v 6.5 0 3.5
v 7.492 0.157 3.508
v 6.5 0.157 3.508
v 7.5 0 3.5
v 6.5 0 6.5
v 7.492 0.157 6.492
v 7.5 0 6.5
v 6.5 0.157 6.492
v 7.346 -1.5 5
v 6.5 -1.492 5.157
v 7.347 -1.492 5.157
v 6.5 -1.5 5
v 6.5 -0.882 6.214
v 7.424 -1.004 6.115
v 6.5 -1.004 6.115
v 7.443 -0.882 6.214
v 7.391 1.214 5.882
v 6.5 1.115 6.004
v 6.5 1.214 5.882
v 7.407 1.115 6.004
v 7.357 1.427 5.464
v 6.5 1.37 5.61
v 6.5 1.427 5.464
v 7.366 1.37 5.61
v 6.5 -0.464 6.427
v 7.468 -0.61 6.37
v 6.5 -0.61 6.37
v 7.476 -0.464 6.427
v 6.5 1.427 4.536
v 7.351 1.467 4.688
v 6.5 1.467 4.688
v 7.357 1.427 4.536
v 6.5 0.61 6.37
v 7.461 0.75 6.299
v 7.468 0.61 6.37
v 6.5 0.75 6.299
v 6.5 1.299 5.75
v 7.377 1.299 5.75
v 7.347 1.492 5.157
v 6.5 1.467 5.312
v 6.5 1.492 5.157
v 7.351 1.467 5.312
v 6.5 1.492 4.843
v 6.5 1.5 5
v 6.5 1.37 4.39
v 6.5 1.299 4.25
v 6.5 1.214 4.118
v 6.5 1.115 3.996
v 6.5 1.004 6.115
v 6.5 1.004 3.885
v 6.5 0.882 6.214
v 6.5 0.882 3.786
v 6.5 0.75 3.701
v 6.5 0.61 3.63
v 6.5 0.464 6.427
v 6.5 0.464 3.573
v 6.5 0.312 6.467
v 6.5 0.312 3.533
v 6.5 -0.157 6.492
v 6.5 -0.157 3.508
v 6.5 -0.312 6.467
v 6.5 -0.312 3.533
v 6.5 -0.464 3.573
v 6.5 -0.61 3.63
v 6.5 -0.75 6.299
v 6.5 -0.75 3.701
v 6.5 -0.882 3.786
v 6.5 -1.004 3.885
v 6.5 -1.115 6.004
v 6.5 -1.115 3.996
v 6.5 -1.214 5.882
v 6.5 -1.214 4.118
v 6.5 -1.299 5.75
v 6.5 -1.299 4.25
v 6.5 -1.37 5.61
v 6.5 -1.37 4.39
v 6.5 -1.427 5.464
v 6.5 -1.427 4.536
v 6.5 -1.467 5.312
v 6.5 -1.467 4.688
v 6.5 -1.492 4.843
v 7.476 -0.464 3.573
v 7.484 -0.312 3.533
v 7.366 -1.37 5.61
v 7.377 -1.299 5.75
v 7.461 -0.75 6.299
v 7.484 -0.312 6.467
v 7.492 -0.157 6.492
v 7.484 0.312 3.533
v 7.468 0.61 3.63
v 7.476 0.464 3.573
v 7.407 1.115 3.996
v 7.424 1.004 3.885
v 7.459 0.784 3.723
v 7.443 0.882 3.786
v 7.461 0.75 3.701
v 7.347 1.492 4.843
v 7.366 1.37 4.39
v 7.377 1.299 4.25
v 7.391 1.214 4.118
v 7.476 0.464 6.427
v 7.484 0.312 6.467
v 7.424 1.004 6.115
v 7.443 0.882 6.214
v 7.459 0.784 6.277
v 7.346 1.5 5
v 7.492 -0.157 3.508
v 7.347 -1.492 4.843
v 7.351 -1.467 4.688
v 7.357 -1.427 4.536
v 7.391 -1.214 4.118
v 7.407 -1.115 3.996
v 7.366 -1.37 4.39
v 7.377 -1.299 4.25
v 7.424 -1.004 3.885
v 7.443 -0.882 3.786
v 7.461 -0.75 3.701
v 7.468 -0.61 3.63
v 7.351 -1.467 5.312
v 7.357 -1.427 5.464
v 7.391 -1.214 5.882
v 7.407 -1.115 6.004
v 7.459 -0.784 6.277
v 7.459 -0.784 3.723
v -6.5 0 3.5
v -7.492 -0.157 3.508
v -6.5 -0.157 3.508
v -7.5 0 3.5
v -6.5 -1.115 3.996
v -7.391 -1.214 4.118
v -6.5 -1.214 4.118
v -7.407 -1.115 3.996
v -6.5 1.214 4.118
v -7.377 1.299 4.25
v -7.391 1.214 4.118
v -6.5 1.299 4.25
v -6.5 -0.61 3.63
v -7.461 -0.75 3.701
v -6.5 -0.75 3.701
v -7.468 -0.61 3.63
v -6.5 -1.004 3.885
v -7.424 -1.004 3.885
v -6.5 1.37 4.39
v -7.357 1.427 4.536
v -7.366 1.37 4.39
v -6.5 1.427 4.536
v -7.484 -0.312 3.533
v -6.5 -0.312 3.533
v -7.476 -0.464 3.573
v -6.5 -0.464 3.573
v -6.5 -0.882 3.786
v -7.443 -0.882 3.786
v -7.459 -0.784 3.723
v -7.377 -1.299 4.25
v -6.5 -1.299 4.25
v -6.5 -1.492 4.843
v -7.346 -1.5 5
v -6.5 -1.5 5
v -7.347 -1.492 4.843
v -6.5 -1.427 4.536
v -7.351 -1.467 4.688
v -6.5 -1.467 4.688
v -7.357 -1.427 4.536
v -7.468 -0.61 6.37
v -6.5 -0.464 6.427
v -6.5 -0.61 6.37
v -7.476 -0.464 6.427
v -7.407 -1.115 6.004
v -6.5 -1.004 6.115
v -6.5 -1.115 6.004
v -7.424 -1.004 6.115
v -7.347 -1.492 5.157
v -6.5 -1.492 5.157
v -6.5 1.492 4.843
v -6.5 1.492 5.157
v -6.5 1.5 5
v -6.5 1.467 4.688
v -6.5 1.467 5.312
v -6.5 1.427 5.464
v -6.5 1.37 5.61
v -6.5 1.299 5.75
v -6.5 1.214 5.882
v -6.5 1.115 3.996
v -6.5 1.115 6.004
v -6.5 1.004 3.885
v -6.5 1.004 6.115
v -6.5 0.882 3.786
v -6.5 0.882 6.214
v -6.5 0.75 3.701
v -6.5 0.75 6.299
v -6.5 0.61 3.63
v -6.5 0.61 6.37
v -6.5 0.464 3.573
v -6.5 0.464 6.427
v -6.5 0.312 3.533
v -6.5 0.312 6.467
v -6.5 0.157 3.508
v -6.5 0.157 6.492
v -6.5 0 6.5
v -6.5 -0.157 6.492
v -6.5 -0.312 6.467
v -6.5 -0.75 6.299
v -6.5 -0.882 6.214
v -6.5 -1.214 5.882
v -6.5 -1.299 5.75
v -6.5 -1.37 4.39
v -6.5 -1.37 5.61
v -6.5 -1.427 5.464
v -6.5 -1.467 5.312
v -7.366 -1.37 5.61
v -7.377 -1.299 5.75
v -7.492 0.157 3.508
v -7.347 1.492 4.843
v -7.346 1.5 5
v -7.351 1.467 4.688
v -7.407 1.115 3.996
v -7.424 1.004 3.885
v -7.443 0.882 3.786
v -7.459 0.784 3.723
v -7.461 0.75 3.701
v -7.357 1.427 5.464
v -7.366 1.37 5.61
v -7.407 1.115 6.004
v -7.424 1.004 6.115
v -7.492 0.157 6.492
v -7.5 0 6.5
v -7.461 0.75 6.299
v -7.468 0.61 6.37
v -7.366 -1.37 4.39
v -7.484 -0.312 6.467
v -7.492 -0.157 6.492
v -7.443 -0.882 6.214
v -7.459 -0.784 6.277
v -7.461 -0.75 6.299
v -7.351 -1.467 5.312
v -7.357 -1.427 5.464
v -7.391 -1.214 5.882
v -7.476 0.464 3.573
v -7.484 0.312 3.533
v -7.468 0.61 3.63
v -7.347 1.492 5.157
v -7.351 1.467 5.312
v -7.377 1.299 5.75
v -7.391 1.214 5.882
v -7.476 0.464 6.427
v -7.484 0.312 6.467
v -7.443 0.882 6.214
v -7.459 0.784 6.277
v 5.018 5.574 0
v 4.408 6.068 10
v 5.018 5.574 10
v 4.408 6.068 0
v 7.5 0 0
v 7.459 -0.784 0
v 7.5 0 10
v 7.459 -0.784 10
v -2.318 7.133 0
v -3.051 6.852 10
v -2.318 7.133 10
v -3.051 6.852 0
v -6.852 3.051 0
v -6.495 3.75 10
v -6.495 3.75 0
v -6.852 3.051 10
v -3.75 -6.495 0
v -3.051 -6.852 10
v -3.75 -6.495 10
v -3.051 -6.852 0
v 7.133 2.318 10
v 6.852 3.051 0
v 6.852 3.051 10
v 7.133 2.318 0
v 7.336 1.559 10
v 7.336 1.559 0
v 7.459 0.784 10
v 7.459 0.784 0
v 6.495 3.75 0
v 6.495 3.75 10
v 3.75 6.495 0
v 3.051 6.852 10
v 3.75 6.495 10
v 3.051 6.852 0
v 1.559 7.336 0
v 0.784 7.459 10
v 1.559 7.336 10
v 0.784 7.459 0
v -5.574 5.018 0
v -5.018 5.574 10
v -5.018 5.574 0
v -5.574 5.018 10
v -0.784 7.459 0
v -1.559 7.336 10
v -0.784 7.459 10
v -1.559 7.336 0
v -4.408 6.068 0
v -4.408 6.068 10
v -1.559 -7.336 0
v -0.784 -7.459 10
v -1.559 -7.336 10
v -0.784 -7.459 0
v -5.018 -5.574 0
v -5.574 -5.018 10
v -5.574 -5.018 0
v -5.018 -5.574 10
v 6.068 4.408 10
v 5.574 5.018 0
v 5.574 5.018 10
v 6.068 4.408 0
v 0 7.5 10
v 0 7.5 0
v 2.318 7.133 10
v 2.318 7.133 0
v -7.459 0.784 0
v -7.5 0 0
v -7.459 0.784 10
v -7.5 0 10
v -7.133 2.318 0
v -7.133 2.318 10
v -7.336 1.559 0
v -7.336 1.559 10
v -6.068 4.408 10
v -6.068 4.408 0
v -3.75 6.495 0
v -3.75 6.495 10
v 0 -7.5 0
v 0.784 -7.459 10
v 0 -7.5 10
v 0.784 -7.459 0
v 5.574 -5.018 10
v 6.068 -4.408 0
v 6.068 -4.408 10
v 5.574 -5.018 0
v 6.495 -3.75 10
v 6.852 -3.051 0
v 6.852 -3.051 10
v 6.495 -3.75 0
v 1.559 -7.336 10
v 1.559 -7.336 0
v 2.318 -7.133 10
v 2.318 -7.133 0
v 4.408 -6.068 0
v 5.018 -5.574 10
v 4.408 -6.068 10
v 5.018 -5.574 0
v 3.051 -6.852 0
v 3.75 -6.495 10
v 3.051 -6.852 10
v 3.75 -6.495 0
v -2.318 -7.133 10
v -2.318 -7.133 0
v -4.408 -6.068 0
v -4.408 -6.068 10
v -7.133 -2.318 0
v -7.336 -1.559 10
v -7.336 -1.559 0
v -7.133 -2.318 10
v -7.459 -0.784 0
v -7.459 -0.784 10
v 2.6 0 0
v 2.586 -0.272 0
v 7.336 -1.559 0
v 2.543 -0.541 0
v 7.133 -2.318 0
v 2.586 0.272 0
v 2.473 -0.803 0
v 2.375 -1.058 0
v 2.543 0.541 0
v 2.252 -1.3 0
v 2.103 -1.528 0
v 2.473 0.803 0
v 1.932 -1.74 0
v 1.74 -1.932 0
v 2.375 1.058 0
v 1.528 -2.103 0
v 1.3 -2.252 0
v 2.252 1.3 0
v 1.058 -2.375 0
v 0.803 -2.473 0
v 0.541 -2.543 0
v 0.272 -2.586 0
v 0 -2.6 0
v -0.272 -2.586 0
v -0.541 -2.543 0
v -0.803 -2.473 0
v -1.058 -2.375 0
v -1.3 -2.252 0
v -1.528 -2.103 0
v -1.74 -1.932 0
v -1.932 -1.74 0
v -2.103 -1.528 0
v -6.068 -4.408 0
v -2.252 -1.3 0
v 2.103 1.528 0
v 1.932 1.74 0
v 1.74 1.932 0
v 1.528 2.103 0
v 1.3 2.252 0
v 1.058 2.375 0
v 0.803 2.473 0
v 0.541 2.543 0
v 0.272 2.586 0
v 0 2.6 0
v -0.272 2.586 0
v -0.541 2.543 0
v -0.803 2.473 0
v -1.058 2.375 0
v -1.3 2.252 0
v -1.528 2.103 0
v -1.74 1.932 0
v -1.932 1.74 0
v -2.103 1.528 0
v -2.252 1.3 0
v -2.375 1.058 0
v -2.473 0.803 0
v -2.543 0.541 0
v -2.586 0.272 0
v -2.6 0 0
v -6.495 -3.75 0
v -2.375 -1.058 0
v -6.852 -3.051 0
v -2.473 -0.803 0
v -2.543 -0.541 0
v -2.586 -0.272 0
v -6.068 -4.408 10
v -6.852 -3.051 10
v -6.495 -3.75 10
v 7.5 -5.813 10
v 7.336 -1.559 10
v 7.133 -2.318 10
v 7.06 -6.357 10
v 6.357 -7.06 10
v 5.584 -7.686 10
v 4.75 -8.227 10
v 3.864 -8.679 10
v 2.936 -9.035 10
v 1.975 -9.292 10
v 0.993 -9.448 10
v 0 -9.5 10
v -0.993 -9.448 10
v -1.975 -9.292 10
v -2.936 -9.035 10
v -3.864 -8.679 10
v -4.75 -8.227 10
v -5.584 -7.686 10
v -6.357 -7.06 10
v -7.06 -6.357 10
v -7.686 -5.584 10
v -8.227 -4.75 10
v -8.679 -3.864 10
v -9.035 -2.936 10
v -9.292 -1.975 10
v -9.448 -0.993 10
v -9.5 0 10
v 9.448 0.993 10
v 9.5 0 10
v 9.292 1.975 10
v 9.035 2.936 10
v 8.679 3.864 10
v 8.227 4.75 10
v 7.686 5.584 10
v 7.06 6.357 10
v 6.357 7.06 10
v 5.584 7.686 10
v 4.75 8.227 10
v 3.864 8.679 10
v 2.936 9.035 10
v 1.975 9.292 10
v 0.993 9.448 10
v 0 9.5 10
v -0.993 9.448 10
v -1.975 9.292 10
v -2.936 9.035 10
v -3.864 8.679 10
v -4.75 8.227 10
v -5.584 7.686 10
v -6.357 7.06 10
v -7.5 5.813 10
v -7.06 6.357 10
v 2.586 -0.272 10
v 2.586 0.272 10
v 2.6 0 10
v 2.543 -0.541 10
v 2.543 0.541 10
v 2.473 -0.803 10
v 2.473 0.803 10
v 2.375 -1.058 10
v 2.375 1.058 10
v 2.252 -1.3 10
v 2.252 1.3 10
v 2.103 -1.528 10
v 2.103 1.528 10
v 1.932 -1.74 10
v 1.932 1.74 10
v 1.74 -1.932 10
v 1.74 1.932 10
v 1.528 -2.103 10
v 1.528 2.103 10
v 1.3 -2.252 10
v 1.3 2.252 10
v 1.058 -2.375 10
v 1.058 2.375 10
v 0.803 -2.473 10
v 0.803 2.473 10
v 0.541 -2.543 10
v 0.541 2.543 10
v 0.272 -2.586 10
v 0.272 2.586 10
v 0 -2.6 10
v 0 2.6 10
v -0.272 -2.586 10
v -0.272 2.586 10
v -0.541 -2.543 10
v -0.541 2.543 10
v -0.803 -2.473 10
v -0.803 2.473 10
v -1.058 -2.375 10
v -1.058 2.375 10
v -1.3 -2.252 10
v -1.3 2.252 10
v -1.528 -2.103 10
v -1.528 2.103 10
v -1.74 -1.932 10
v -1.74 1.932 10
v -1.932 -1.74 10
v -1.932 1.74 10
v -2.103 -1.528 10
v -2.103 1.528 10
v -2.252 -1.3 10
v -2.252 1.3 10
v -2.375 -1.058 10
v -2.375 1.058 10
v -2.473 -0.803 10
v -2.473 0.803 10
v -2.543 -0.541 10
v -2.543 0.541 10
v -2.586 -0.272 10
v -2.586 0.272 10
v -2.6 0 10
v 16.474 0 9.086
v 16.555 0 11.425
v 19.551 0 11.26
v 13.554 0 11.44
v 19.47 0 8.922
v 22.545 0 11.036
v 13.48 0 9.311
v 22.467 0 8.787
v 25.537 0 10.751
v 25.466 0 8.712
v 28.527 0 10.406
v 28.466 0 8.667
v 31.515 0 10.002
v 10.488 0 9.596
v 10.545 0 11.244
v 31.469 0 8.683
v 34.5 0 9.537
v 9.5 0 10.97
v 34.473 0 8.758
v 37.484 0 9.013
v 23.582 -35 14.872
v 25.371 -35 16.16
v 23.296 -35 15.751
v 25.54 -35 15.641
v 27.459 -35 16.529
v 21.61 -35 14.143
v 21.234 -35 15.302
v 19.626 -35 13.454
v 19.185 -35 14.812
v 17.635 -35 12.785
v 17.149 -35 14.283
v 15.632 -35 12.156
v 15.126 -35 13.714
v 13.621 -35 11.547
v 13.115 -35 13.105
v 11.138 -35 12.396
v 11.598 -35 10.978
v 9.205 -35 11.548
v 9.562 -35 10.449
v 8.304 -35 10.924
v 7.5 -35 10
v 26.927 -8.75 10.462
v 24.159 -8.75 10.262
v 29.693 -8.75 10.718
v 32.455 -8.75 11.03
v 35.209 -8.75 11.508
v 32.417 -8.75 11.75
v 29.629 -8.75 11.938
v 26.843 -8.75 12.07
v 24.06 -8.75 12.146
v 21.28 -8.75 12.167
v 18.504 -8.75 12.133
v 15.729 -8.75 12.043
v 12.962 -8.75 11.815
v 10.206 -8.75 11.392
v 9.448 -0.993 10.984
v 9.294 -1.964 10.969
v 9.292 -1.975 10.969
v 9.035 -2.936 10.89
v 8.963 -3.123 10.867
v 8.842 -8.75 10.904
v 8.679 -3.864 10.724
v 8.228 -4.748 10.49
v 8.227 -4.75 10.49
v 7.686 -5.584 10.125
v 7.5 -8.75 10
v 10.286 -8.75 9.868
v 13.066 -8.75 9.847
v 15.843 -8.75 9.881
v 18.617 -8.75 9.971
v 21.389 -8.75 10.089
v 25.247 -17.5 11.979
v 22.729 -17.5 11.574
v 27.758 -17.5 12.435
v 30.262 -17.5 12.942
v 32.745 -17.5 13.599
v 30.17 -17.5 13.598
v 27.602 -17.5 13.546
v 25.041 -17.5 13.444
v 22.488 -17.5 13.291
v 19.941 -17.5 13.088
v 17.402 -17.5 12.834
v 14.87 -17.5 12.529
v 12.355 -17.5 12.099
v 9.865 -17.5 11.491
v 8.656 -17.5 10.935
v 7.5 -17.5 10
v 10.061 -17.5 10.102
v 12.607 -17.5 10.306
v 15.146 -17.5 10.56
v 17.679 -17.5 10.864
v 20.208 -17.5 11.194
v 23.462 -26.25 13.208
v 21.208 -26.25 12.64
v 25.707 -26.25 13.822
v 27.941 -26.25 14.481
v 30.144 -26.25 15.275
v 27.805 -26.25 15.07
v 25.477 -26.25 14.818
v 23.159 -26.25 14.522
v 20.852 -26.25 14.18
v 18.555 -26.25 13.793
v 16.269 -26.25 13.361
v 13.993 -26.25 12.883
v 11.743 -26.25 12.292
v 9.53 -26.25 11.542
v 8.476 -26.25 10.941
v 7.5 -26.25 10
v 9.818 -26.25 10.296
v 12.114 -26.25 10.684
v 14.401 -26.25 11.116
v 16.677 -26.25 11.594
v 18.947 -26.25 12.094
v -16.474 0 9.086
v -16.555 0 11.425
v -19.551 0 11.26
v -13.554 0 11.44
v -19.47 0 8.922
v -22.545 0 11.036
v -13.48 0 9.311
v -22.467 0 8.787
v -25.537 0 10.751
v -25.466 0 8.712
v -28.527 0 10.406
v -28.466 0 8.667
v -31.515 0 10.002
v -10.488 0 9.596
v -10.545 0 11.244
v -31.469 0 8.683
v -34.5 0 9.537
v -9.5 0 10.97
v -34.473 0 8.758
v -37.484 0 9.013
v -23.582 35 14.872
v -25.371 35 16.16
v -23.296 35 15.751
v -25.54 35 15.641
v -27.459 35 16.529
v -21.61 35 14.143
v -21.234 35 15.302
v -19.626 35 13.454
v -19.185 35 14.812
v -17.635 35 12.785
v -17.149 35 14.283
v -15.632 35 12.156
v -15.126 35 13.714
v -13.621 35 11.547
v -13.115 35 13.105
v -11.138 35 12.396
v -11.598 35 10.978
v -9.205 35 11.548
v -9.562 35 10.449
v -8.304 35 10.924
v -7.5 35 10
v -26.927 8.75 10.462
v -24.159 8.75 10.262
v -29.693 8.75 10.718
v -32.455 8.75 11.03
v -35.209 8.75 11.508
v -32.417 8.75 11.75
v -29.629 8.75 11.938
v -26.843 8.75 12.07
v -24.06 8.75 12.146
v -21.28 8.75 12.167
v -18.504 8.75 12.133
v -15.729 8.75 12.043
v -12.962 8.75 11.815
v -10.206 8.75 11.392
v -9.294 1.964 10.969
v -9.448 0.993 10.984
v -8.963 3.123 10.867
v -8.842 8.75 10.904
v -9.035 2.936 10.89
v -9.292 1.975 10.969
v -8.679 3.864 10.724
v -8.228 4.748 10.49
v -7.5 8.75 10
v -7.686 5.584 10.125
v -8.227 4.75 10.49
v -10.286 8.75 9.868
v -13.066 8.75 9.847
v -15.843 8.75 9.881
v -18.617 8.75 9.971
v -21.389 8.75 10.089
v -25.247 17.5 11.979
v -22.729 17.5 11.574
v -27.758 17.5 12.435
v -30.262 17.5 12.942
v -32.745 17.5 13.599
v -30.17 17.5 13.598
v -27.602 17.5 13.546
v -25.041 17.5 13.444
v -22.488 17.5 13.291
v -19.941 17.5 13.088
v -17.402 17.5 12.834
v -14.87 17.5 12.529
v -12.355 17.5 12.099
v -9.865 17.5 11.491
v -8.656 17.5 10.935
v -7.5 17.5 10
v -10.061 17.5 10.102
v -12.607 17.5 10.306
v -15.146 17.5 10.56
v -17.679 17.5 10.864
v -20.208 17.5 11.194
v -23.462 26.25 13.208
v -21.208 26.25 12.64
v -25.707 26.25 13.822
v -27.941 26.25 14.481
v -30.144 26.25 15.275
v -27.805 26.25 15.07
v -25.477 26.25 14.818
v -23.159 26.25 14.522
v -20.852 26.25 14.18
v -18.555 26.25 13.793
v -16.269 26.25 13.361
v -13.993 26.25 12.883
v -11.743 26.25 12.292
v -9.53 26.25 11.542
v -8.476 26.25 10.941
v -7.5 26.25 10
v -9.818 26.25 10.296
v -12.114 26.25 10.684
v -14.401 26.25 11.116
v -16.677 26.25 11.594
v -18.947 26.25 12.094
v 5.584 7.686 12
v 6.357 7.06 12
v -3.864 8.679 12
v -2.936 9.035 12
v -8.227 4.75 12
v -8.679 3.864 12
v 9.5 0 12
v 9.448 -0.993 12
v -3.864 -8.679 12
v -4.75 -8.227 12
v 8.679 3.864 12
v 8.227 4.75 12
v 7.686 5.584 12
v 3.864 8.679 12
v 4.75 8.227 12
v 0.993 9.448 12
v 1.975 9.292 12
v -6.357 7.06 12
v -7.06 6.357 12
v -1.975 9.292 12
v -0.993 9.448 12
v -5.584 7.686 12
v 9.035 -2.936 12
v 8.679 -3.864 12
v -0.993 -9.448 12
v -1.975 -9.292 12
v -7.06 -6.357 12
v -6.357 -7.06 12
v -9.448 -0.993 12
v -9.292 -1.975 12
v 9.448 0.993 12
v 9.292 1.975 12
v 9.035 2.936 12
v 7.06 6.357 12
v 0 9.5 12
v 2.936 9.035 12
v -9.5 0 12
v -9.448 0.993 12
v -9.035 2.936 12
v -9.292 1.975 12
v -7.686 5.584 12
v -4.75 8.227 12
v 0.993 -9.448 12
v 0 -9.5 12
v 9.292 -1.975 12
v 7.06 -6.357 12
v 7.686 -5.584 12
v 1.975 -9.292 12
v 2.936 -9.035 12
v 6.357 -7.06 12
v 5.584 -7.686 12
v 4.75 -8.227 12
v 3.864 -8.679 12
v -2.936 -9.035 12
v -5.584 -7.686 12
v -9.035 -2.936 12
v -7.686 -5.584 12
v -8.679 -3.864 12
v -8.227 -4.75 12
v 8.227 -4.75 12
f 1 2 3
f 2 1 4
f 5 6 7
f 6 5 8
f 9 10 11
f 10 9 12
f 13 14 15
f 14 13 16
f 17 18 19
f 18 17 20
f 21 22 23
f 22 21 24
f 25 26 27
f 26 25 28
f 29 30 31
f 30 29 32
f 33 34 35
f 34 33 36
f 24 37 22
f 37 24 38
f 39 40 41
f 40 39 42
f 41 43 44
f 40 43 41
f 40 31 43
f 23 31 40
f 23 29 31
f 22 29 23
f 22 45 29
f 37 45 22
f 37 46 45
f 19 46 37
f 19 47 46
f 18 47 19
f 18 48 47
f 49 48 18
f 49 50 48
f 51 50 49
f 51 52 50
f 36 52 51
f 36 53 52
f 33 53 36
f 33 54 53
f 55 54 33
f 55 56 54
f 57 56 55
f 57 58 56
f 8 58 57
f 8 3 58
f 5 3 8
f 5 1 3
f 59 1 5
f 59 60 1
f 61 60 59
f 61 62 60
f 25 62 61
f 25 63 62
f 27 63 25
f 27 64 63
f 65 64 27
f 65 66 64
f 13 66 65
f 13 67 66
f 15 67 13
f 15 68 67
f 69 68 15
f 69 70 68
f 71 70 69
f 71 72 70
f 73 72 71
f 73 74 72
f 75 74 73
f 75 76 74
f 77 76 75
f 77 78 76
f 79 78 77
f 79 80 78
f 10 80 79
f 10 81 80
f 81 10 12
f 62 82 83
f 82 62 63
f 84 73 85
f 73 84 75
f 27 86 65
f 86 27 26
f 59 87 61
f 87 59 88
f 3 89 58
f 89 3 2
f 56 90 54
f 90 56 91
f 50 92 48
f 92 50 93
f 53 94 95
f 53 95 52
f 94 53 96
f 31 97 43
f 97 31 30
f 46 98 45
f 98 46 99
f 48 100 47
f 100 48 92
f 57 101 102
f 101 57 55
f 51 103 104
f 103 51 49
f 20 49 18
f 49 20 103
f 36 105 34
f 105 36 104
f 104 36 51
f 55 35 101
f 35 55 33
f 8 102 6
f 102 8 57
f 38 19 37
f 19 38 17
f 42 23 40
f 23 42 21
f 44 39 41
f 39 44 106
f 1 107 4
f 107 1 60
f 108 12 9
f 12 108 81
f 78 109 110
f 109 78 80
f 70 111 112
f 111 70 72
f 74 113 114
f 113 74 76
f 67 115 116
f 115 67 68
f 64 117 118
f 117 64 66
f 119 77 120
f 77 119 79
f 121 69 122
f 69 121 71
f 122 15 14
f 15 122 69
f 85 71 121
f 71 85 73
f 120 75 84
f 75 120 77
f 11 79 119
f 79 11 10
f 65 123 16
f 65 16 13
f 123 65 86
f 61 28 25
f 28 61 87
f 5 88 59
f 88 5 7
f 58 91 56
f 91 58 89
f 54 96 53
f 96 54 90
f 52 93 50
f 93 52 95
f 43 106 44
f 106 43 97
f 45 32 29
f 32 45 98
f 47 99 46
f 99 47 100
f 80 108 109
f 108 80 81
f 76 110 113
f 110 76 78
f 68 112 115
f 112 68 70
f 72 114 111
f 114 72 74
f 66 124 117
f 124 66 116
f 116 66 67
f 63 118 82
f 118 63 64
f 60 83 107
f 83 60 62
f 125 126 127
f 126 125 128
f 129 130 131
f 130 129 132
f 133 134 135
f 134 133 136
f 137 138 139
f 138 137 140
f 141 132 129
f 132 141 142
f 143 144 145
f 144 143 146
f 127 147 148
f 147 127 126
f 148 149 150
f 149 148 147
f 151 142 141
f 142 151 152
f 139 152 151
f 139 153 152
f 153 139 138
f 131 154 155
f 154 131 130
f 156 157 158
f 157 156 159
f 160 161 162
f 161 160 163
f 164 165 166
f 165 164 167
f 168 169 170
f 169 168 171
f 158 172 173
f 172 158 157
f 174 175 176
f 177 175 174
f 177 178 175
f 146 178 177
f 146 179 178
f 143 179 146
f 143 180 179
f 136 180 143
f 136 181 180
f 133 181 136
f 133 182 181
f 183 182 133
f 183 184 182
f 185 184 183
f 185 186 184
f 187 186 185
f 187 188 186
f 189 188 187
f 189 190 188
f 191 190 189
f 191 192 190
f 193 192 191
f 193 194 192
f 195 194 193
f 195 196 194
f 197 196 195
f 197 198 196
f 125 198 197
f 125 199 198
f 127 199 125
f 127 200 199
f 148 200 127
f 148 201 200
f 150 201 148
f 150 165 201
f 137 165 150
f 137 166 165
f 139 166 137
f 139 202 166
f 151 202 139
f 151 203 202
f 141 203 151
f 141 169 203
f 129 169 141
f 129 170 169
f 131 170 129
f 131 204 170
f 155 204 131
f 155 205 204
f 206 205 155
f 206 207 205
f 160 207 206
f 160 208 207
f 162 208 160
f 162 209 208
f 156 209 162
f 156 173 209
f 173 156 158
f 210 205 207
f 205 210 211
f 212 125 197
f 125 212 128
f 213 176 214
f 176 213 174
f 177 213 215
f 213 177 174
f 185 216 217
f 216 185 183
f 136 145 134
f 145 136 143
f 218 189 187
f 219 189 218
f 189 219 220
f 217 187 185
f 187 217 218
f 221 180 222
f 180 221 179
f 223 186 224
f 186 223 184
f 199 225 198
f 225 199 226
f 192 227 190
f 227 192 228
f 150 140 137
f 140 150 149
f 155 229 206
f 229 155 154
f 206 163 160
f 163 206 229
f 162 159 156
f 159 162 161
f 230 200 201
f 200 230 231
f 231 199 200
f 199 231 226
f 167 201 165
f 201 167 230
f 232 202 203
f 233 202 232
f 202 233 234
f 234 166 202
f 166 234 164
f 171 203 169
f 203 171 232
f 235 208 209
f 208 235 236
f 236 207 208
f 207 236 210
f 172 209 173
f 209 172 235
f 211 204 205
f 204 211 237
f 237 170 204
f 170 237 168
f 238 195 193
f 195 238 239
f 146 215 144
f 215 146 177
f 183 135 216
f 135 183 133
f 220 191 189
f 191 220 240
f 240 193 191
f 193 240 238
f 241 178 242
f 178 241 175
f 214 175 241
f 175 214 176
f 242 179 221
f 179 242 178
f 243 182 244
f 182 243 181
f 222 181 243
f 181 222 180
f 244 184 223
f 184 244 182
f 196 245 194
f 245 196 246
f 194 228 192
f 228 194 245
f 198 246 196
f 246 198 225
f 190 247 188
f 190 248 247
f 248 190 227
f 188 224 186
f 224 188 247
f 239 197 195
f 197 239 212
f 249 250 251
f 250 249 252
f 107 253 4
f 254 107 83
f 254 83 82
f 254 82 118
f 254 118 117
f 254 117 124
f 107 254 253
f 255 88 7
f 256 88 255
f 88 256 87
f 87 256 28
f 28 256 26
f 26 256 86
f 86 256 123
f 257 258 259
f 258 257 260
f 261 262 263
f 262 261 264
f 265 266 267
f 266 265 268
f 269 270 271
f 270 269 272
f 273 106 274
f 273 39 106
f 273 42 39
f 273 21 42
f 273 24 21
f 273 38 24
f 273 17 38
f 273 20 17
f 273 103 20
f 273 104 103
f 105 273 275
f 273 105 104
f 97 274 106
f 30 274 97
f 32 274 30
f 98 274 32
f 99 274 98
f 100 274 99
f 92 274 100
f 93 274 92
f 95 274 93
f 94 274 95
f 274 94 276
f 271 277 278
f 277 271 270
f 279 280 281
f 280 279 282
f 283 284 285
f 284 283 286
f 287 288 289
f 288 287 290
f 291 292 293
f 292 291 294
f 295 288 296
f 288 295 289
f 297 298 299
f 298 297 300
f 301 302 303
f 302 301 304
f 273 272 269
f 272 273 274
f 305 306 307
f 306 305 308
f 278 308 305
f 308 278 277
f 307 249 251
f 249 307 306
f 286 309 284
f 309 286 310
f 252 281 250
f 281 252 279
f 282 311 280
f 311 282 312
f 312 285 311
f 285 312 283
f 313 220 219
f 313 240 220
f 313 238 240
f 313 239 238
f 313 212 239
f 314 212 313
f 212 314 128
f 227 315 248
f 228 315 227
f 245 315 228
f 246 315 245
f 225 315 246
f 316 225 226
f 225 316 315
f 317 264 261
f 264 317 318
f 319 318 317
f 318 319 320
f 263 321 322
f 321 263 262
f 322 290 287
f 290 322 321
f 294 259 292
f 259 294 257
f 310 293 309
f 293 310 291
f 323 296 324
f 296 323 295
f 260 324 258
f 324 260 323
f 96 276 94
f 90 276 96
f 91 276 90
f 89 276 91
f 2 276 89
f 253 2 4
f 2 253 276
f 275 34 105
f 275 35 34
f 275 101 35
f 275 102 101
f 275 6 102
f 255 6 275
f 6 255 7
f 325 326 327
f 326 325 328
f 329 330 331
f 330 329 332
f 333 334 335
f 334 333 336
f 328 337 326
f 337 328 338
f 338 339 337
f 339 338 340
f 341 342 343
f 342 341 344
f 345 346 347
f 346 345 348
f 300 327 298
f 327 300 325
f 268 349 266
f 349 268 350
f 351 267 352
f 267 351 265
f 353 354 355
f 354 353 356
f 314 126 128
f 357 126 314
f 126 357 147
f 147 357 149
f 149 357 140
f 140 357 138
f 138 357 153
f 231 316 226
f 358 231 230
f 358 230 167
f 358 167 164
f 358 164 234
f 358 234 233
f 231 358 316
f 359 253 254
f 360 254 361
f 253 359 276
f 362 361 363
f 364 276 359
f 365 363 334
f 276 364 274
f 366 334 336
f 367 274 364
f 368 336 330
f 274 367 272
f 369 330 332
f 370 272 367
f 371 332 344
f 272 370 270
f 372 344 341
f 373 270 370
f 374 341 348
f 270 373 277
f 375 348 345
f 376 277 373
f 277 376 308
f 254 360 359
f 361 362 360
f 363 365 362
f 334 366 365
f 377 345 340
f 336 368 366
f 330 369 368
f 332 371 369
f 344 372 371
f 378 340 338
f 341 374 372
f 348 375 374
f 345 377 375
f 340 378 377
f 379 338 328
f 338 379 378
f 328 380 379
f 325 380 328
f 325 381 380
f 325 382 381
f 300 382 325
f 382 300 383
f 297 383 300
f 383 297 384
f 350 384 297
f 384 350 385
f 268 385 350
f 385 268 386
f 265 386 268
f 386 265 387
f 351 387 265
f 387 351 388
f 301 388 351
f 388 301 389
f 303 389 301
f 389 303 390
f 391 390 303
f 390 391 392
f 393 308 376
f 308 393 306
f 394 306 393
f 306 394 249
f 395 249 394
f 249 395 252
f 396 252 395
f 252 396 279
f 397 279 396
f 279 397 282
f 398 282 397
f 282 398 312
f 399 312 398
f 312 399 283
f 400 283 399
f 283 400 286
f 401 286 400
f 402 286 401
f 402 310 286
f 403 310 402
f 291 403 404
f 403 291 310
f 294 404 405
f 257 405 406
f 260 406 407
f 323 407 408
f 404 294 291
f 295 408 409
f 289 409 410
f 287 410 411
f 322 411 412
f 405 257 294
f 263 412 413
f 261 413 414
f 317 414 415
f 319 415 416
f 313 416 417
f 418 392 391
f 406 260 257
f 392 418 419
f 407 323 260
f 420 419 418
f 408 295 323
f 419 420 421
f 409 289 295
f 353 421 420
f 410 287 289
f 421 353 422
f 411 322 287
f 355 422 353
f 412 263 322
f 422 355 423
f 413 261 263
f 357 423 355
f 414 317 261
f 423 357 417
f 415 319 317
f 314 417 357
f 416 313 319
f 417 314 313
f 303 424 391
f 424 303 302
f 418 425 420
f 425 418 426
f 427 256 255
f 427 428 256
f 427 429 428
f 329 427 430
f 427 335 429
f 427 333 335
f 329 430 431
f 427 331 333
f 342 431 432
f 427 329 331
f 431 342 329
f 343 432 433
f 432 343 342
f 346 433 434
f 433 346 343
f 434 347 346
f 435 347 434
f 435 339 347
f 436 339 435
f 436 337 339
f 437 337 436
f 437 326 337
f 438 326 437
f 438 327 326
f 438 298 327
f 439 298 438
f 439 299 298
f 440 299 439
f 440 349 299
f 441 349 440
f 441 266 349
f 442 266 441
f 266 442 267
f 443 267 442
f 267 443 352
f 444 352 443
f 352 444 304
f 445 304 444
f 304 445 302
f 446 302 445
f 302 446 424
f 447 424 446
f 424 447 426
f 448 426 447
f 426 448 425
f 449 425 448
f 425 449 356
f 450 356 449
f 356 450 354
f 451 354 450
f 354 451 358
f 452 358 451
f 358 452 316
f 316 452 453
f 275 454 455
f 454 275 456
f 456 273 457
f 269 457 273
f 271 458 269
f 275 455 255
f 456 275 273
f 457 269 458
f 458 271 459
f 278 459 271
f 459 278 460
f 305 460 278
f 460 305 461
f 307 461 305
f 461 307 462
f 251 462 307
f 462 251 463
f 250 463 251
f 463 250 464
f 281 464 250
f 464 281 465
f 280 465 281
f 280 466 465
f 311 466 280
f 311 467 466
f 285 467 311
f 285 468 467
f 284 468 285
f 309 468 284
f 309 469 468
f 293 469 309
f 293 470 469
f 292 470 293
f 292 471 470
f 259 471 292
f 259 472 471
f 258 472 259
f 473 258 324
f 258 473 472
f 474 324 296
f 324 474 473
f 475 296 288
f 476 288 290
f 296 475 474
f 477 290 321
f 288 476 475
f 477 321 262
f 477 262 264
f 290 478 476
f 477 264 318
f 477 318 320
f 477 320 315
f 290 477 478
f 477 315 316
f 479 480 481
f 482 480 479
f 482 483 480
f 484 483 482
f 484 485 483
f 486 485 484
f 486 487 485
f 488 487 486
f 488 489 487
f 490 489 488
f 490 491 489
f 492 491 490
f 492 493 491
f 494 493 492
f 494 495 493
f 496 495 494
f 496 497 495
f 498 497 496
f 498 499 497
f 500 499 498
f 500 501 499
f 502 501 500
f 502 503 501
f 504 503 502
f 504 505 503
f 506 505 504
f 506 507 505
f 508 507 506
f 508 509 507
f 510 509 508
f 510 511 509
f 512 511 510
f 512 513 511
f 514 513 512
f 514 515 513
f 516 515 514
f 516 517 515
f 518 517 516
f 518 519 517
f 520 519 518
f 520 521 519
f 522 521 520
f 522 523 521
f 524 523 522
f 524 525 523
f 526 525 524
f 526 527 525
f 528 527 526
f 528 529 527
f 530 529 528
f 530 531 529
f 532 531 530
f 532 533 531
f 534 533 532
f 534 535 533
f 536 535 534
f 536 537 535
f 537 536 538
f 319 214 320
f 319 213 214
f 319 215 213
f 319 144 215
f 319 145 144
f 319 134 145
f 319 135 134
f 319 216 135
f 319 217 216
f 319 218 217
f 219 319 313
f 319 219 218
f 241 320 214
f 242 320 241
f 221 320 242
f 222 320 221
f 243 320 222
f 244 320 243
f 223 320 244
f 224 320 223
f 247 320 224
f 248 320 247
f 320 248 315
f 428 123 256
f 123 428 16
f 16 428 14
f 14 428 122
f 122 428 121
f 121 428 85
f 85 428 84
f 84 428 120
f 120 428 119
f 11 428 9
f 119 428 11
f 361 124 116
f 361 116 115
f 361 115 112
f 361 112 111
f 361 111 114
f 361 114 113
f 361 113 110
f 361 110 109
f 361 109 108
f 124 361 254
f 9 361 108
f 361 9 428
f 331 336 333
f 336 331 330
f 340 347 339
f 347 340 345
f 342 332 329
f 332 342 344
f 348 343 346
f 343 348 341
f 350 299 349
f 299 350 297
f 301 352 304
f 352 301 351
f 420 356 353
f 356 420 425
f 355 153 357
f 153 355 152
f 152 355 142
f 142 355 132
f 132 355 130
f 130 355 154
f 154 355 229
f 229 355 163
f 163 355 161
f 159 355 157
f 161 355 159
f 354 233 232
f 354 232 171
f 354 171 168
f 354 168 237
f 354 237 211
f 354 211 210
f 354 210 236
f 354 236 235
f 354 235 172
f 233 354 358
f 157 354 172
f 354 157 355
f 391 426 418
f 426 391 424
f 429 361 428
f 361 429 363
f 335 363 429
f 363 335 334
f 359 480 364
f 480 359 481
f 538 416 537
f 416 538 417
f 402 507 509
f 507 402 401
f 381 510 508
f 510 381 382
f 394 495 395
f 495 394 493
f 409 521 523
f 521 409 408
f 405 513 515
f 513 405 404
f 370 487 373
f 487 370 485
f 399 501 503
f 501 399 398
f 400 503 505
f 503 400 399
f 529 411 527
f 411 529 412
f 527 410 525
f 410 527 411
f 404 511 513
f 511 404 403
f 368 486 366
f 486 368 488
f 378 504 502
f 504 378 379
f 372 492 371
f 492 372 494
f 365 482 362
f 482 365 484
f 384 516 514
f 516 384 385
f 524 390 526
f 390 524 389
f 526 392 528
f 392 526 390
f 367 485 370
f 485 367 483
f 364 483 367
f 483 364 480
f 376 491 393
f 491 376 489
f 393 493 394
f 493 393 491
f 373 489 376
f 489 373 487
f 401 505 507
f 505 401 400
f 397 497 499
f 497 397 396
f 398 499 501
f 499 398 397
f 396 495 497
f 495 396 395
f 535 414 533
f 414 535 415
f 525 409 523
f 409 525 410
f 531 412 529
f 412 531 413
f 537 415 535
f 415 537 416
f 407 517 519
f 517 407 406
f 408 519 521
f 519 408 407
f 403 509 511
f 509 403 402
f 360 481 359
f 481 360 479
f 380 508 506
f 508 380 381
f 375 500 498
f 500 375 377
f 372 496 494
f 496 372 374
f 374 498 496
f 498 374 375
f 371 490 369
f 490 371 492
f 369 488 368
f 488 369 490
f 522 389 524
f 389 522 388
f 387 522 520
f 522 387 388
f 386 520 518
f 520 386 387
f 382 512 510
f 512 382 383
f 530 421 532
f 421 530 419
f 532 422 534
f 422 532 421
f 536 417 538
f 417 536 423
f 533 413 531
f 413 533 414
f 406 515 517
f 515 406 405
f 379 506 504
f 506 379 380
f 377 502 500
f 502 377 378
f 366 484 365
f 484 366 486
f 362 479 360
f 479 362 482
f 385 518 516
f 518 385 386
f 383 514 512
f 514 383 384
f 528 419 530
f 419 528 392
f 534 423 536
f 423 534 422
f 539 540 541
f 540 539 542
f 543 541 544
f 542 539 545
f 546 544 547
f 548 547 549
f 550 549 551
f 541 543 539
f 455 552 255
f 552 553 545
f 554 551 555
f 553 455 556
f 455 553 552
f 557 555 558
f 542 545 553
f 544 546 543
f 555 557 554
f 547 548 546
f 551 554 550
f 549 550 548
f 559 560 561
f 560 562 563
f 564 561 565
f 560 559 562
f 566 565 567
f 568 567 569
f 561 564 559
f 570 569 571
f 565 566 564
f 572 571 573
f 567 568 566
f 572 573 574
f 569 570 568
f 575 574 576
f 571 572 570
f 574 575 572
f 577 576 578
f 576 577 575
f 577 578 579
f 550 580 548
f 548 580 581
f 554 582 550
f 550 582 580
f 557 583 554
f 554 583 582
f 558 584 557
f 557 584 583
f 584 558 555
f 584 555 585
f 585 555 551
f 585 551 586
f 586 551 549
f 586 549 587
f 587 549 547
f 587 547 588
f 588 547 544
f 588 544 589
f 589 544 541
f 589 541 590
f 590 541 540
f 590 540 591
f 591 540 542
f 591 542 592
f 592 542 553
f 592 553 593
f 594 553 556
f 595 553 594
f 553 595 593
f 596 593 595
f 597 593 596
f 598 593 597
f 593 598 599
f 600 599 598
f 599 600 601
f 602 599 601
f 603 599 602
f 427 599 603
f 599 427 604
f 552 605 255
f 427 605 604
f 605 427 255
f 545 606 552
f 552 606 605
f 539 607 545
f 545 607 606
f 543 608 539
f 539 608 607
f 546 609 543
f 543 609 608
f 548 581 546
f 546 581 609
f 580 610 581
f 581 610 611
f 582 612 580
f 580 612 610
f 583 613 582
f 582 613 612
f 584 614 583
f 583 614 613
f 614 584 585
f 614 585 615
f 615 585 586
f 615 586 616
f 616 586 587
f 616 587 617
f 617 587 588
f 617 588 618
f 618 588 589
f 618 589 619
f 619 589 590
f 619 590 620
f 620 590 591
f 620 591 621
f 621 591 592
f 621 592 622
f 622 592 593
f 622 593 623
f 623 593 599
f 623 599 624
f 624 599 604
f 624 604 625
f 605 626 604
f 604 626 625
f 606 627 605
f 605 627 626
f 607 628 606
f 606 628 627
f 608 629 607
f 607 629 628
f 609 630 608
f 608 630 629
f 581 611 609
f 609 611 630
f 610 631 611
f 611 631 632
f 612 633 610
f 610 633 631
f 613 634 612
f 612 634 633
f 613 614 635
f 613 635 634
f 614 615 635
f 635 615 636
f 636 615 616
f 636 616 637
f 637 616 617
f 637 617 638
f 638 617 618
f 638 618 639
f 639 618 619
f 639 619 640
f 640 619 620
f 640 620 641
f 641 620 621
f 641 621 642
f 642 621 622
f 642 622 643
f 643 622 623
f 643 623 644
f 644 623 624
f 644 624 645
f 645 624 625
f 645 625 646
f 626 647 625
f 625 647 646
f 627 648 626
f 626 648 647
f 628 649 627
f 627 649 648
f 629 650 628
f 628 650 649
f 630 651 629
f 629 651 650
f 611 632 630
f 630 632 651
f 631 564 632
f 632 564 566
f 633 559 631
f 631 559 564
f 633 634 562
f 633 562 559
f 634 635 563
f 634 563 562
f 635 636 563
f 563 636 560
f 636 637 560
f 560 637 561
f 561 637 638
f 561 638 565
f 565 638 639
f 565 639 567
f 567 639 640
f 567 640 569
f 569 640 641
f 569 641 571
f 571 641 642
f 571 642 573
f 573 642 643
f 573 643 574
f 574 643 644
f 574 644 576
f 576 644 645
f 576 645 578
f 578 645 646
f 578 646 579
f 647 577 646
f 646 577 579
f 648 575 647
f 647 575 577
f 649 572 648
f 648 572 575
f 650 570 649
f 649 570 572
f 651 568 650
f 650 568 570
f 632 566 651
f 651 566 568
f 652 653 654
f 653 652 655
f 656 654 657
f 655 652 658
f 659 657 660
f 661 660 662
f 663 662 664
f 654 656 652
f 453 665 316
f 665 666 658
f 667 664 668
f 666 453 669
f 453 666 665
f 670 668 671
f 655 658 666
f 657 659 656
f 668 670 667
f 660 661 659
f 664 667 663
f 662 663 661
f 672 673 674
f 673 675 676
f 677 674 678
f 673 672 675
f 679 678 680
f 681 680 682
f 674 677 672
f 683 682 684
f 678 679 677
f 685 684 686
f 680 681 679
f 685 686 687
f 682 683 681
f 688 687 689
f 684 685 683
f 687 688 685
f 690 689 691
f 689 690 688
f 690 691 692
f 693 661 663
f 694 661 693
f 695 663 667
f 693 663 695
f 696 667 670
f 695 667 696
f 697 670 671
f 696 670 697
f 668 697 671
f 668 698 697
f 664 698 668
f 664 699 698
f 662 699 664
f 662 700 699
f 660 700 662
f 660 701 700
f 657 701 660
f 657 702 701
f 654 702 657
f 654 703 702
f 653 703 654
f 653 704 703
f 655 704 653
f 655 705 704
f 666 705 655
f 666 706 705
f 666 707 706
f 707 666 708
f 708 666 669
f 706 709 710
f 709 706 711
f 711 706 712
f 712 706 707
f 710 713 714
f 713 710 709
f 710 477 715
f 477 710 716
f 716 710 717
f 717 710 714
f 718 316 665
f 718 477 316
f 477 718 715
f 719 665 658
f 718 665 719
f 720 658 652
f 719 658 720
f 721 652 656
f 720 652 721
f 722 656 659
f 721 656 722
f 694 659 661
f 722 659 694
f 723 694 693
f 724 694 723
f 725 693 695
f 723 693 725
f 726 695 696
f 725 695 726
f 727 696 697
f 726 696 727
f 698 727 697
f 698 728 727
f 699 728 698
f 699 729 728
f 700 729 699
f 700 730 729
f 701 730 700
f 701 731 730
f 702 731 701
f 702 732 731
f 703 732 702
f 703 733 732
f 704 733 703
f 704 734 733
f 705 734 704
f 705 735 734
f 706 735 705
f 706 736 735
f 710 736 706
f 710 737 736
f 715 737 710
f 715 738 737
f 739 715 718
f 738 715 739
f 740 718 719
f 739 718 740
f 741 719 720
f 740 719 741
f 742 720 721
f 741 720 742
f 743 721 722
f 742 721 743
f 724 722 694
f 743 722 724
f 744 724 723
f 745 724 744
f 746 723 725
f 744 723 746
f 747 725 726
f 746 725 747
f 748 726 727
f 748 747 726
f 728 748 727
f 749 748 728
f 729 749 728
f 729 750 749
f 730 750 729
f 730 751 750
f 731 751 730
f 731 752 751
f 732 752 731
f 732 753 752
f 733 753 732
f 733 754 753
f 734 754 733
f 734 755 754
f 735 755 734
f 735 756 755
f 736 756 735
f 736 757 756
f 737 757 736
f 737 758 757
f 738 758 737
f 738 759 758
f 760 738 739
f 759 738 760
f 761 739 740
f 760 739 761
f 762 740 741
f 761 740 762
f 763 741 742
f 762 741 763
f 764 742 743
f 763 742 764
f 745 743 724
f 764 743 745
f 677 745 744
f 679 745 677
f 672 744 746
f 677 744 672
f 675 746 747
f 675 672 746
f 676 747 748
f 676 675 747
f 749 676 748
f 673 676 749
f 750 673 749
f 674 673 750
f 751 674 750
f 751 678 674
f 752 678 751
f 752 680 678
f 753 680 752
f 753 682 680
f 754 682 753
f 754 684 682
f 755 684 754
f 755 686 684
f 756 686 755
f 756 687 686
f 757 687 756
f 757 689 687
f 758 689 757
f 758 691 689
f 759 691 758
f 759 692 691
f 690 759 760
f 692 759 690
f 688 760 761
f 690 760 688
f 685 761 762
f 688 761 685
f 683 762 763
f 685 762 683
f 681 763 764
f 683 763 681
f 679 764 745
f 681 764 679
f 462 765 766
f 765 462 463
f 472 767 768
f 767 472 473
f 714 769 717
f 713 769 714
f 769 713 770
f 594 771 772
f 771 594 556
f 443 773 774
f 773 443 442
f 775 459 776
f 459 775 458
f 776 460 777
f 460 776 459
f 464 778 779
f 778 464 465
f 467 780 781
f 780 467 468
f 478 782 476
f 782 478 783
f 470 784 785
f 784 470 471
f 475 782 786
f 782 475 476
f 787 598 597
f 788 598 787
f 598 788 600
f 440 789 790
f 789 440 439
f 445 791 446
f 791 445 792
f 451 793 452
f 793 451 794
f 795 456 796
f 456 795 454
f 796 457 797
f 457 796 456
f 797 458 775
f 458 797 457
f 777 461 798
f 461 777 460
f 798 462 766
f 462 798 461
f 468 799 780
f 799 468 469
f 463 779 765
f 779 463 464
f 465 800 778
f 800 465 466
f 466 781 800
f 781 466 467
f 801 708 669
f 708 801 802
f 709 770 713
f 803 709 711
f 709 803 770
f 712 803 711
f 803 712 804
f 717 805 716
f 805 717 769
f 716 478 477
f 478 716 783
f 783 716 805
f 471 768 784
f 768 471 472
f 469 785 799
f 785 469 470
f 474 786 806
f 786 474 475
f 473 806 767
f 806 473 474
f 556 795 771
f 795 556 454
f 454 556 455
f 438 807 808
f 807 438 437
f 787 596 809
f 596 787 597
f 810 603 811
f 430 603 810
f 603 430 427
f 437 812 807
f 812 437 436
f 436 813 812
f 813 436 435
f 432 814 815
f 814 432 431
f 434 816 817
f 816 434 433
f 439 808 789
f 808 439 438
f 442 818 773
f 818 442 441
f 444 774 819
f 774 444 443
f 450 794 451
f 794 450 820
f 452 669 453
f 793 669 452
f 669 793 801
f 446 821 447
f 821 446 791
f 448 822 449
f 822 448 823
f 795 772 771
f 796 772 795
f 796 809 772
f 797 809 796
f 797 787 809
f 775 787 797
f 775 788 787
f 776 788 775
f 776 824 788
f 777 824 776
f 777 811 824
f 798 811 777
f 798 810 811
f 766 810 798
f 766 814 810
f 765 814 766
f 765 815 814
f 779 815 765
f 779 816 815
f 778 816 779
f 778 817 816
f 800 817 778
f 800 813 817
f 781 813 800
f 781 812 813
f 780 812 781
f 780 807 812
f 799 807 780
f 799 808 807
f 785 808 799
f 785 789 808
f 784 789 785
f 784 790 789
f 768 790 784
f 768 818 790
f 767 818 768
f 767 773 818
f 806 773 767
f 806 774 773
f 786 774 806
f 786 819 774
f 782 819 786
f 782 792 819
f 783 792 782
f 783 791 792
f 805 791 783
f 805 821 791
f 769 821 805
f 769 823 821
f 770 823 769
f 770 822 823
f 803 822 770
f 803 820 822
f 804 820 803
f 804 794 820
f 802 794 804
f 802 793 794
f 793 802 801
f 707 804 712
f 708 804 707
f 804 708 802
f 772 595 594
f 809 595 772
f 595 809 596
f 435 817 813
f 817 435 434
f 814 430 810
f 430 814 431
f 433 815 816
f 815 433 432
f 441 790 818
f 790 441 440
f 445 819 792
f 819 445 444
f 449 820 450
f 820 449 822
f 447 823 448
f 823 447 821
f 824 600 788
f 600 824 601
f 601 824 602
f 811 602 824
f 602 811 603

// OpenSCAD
/*
 * COMPLETE MOTOR + IMPELLER ASSEMBLY
 * For CFD fluid testing and visualization
 * 
 * This model includes:
 *   - Brushless motor (2204-2206 size)
 *   - Motor shaft (5mm)
 *   - Impeller hub
 *   - 3 impeller variants (bladeless, AI-blades, hybrid)
 *   - Mounting plate
 * 
 * Usage:
 *   - Render full assembly: F6
 *   - Export for CFD: Set EXPORT_MODE = "impeller_only"
 *   - Change design: Set IMPELLER_TYPE = "bladeless" | "bladed" | "hybrid"
 */

// ============================================================================
// CONFIGURATION PARAMETERS (AI-Optimizable)
// ============================================================================

// General Settings
$fn = 60;  // Resolution for CFD export (increase to 100 for final)

// Export Mode
EXPORT_MODE = "impeller_only";  // Options: "full_assembly", "impeller_only", "motor_only"

// Impeller Type
IMPELLER_TYPE = "bladed";  // Options: "bladeless", "bladed", "hybrid"

// Motor Specifications (2204-2206 brushless)
MOTOR_DIAMETER = 28;         // mm
MOTOR_HEIGHT = 25;           // mm
MOTOR_SHAFT_DIAMETER = 5;    // mm (standard)
MOTOR_SHAFT_LENGTH = 15;     // mm (extends above motor)
MOTOR_MOUNT_PATTERN = 16;    // mm (16x16 or 19x19 common)
MOTOR_SCREW_DIAMETER = 3;    // M3 screws

// Impeller Parameters - BLADELESS
BLADELESS_OUTER_DIAMETER = 90;    // mm
BLADELESS_AIR_GAP = 0.8;          // mm (optimize: 0.6-1.2)
BLADELESS_THROAT_RATIO = 0.72;    // (optimize: 0.65-0.80)
BLADELESS_EXPANSION_ANGLE = 18;   // degrees (optimize: 12-25)
BLADELESS_RING_THICKNESS = 3;     // mm (optimize: 2-4)
BLADELESS_HEIGHT = 24;            // mm

// Impeller Parameters - BLADED
BLADED_DIAMETER = 85;
BLADED_HUB_DIAMETER = 15;         // mm (optimize: 12-20)
BLADED_BLADE_COUNT = 2;
BLADED_ROOT_CHORD = 30;
BLADED_TIP_CHORD_RATIO = 0.7;    // (optimize: 0.6-0.8)
BLADED_BLADE_THICKNESS = 2;       // mm (optimize: 1.5-3)
BLADED_BLADE_TWIST = -20;
BLADED_ATTACK_ANGLE = -2;
BLADED_BLADE_HEIGHT = 12;         // mm (optimize: 10-15)

// Hub Parameters
HUB_DIAMETER = 15;
HUB_HEIGHT = 10;
HUB_SET_SCREW_DIAMETER = 3;  // M3 set screw

// Mounting Plate
PLATE_SIZE = 50;
PLATE_THICKNESS = 3;

// ============================================================================
// MOTOR MODEL
// ============================================================================

module brushless_motor_2204() {
    color("DarkSlateGray") {
        // Motor can (bell)
        difference() {
            cylinder(h=MOTOR_HEIGHT, d=MOTOR_DIAMETER);
            
            // Hollow inside (weight reduction visualization)
            translate([0, 0, -0.5])
                cylinder(h=MOTOR_HEIGHT - 5, d=MOTOR_DIAMETER - 4);
            
            // Mounting holes
            for(i = [0:3]) {
                rotate([0, 0, i * 90])
                    translate([MOTOR_MOUNT_PATTERN/2, 0, MOTOR_HEIGHT/2])
                        rotate([90, 0, 0])
                            cylinder(h=MOTOR_DIAMETER, d=MOTOR_SCREW_DIAMETER, center=true);
            }
        }
        
        // Motor base
        translate([0, 0, -3])
            cylinder(h=3, d=MOTOR_DIAMETER - 2);
    }
    
    // Motor shaft
    color("Silver")
        translate([0, 0, MOTOR_HEIGHT])
            cylinder(h=MOTOR_SHAFT_LENGTH, d=MOTOR_SHAFT_DIAMETER);
    
    // Shaft tip (for hub attachment)
    color("Silver")
        translate([0, 0, MOTOR_HEIGHT + MOTOR_SHAFT_LENGTH])
            cylinder(h=2, d=MOTOR_SHAFT_DIAMETER - 0.5);
}

// ============================================================================
// IMPELLER HUB
// ============================================================================

module impeller_hub() {
    color("Gray")
    difference() {
        // Hub body
        cylinder(h=HUB_HEIGHT, d=HUB_DIAMETER);
        
        // Shaft hole (5mm + 0.2mm clearance)
        translate([0, 0, -0.5])
            cylinder(h=HUB_HEIGHT + 1, d=MOTOR_SHAFT_DIAMETER + 0.2);
        
        // Set screw holes (2x for balance)
        for(i = [0:1]) {
            rotate([0, 0, i * 180])
                translate([HUB_DIAMETER/2 - 1, 0, HUB_HEIGHT/2])
                    rotate([0, 90, 0])
                        cylinder(h=5, d=HUB_SET_SCREW_DIAMETER);
        }
    }
}

// ============================================================================
// BLADELESS IMPELLER (Dyson-style)
// ============================================================================

module bladeless_impeller() {
    outer_r = BLADELESS_OUTER_DIAMETER / 2;
    throat_r = outer_r * BLADELESS_THROAT_RATIO;
    gap = BLADELESS_AIR_GAP;
    
    color("SkyBlue", 0.7)
    difference() {
        // Outer ring
        rotate_extrude()
            translate([outer_r - BLADELESS_RING_THICKNESS/2, BLADELESS_HEIGHT/2, 0])
                circle(d=BLADELESS_RING_THICKNESS + BLADELESS_HEIGHT);
        
        // Inner air gap (critical for Coanda effect)
        rotate_extrude()
            translate([outer_r - gap - BLADELESS_RING_THICKNESS/2, BLADELESS_HEIGHT/2, 0])
                circle(d=BLADELESS_RING_THICKNESS + BLADELESS_HEIGHT - 2*gap);
    }
    
    // Base plate (connects to hub)
    color("SkyBlue", 0.7)
    translate([0, 0, -2])
        difference() {
            cylinder(h=2, d=outer_r * 2);
            translate([0, 0, -0.5])
                cylinder(h=3, d=HUB_DIAMETER + 1);
        }
    
    // Air inlet (bell-shaped for smooth flow)
    color("SkyBlue", 0.7)
    translate([0, 0, -2]) {
        difference() {
            cylinder(h=15, d1=throat_r * 2, d2=outer_r * 1.8);
            translate([0, 0, -0.5])
                cylinder(h=16, d1=throat_r * 2 - 3, d2=outer_r * 1.8 - 3);
        }
    }
}

// ============================================================================
// AI-OPTIMIZED BLADED IMPELLER (NACA 2412 profile)
// ============================================================================

module naca_2412_blade(chord, height, twist_angle, attack_angle) {
    // Simplified NACA 2412 airfoil profile
    // Using parametric approximation for 3D printing
    
    color("LightSteelBlue", 0.8)
    linear_extrude(height=height, twist=twist_angle, scale=BLADED_TIP_CHORD_RATIO) {
        rotate([0, 0, attack_angle])
        polygon([
            // Upper surface (cambered)
            [0, 0],
            [chord * 0.05, chord * 0.03],
            [chord * 0.1, chord * 0.045],
            [chord * 0.2, chord * 0.055],
            [chord * 0.3, chord * 0.058],
            [chord * 0.4, chord * 0.056],
            [chord * 0.5, chord * 0.052],
            [chord * 0.6, chord * 0.046],
            [chord * 0.7, chord * 0.038],
            [chord * 0.8, chord * 0.028],
            [chord * 0.9, chord * 0.016],
            [chord * 1.0, chord * 0.002],
            // Lower surface (less cambered)
            [chord * 0.9, -chord * 0.010],
            [chord * 0.8, -chord * 0.016],
            [chord * 0.7, -chord * 0.020],
            [chord * 0.6, -chord * 0.022],
            [chord * 0.5, -chord * 0.023],
            [chord * 0.4, -chord * 0.022],
            [chord * 0.3, -chord * 0.020],
            [chord * 0.2, -chord * 0.016],
            [chord * 0.1, -chord * 0.010],
            [chord * 0.05, -chord * 0.005],
        ]);
    }
}

module bladed_impeller() {
    // Blades
    for(i = [0 : BLADED_BLADE_COUNT - 1]) {
        rotate([0, 0, i * (360 / BLADED_BLADE_COUNT)])
            translate([BLADED_HUB_DIAMETER/2, 0, 0])
                rotate([90, 0, 0])
                    naca_2412_blade(
                        BLADED_ROOT_CHORD, 
                        (BLADED_DIAMETER - BLADED_HUB_DIAMETER) / 2,
                        BLADED_BLADE_TWIST,
                        BLADED_ATTACK_ANGLE
                    );
    }
    
    // Hub disk (connects blades)
    color("LightSteelBlue", 0.8)
    cylinder(h=2, d=BLADED_HUB_DIAMETER + 4);
}

// ============================================================================
// HYBRID IMPELLER (Blades inside bladeless ring)
// ============================================================================

module hybrid_impeller() {
    // Outer bladeless ring
    bladeless_impeller();
    
    // Inner bladed impeller (scaled down to fit)
    scale([0.85, 0.85, 1])
        bladed_impeller();
}

// ============================================================================
// MOUNTING PLATE
// ============================================================================

module mounting_plate() {
    color("DimGray")
    difference() {
        // Base plate
        translate([-PLATE_SIZE/2, -PLATE_SIZE/2, 0])
            cube([PLATE_SIZE, PLATE_SIZE, PLATE_THICKNESS]);
        
        // Center hole for motor shaft
        translate([0, 0, -0.5])
            cylinder(h=PLATE_THICKNESS + 1, d=MOTOR_DIAMETER + 2);
        
        // Motor mounting holes
        for(i = [0:3]) {
            rotate([0, 0, i * 90])
                translate([MOTOR_MOUNT_PATTERN/2, 0, -0.5])
                    cylinder(h=PLATE_THICKNESS + 1, d=MOTOR_SCREW_DIAMETER);
        }
    }
}

// ============================================================================
// COMPLETE ASSEMBLY
// ============================================================================

module complete_assembly() {
    // Mounting plate (bottom)
    translate([0, 0, -PLATE_THICKNESS])
        mounting_plate();
    
    // Motor
    translate([0, 0, 0])
        brushless_motor_2204();
    
    // Hub (on shaft)
    translate([0, 0, MOTOR_HEIGHT + MOTOR_SHAFT_LENGTH - 2])
        impeller_hub();
    
    // Impeller (on hub)
    translate([0, 0, MOTOR_HEIGHT + MOTOR_SHAFT_LENGTH + HUB_HEIGHT]) {
        if (IMPELLER_TYPE == "bladeless") {
            bladeless_impeller();
        } else if (IMPELLER_TYPE == "bladed") {
            bladed_impeller();
        } else if (IMPELLER_TYPE == "hybrid") {
            hybrid_impeller();
        }
    }
}

// ============================================================================
// RENDER BASED ON EXPORT MODE
// ============================================================================

if (EXPORT_MODE == "full_assembly") {
    complete_assembly();
} 
else if (EXPORT_MODE == "impeller_only") {
    // For CFD testing - impeller + hub only
    impeller_hub();
    translate([0, 0, HUB_HEIGHT]) {
        if (IMPELLER_TYPE == "bladeless") {
            bladeless_impeller();
        } else if (IMPELLER_TYPE == "bladed") {
            bladed_impeller();
        } else if (IMPELLER_TYPE == "hybrid") {
            hybrid_impeller();
        }
    }
}
else if (EXPORT_MODE == "motor_only") {
    brushless_motor_2204();
}

// ============================================================================
// ANNOTATIONS FOR VISUALIZATION
// ============================================================================

// Uncomment to show dimensions
/*
color("Red", 0.3)
translate([BLADED_DIAMETER/2 + 10, 0, 20])
    text(str("Ø", BLADED_DIAMETER, "mm"), size=5, halign="left");

color("Green", 0.3)
translate([0, BLADED_DIAMETER/2 + 10, 20])
    text(str(BLADED_BLADE_COUNT, " blades"), size=5, halign="center");
*/

// ============================================================================
// EXPORT NOTES
// ============================================================================

/*
 * TO EXPORT FOR CFD TESTING:
 * 
 * 1. Set EXPORT_MODE = "impeller_only"
 * 2. Set IMPELLER_TYPE = "bladeless" (or "bladed" or "hybrid")
 * 3. Press F6 to render
 * 4. File → Export → Export as STL
 * 5. Use filename: impeller_bladeless_fn60.stl
 * 
 * FOR OPTIMIZATION:
 * - Modify parameters at top (marked with "optimize:")
 * - Re-render and export
 * - Upload to SimScale for CFD
 * - Compare results
 * 
 * RECOMMENDED CFD SETTINGS:
 * - Solver: k-omega SST
 * - RPM: 5000, 7000, 9000
 * - Mesh: 3-5M cells
 * - Boundary: Rotating zone on impeller
 */
